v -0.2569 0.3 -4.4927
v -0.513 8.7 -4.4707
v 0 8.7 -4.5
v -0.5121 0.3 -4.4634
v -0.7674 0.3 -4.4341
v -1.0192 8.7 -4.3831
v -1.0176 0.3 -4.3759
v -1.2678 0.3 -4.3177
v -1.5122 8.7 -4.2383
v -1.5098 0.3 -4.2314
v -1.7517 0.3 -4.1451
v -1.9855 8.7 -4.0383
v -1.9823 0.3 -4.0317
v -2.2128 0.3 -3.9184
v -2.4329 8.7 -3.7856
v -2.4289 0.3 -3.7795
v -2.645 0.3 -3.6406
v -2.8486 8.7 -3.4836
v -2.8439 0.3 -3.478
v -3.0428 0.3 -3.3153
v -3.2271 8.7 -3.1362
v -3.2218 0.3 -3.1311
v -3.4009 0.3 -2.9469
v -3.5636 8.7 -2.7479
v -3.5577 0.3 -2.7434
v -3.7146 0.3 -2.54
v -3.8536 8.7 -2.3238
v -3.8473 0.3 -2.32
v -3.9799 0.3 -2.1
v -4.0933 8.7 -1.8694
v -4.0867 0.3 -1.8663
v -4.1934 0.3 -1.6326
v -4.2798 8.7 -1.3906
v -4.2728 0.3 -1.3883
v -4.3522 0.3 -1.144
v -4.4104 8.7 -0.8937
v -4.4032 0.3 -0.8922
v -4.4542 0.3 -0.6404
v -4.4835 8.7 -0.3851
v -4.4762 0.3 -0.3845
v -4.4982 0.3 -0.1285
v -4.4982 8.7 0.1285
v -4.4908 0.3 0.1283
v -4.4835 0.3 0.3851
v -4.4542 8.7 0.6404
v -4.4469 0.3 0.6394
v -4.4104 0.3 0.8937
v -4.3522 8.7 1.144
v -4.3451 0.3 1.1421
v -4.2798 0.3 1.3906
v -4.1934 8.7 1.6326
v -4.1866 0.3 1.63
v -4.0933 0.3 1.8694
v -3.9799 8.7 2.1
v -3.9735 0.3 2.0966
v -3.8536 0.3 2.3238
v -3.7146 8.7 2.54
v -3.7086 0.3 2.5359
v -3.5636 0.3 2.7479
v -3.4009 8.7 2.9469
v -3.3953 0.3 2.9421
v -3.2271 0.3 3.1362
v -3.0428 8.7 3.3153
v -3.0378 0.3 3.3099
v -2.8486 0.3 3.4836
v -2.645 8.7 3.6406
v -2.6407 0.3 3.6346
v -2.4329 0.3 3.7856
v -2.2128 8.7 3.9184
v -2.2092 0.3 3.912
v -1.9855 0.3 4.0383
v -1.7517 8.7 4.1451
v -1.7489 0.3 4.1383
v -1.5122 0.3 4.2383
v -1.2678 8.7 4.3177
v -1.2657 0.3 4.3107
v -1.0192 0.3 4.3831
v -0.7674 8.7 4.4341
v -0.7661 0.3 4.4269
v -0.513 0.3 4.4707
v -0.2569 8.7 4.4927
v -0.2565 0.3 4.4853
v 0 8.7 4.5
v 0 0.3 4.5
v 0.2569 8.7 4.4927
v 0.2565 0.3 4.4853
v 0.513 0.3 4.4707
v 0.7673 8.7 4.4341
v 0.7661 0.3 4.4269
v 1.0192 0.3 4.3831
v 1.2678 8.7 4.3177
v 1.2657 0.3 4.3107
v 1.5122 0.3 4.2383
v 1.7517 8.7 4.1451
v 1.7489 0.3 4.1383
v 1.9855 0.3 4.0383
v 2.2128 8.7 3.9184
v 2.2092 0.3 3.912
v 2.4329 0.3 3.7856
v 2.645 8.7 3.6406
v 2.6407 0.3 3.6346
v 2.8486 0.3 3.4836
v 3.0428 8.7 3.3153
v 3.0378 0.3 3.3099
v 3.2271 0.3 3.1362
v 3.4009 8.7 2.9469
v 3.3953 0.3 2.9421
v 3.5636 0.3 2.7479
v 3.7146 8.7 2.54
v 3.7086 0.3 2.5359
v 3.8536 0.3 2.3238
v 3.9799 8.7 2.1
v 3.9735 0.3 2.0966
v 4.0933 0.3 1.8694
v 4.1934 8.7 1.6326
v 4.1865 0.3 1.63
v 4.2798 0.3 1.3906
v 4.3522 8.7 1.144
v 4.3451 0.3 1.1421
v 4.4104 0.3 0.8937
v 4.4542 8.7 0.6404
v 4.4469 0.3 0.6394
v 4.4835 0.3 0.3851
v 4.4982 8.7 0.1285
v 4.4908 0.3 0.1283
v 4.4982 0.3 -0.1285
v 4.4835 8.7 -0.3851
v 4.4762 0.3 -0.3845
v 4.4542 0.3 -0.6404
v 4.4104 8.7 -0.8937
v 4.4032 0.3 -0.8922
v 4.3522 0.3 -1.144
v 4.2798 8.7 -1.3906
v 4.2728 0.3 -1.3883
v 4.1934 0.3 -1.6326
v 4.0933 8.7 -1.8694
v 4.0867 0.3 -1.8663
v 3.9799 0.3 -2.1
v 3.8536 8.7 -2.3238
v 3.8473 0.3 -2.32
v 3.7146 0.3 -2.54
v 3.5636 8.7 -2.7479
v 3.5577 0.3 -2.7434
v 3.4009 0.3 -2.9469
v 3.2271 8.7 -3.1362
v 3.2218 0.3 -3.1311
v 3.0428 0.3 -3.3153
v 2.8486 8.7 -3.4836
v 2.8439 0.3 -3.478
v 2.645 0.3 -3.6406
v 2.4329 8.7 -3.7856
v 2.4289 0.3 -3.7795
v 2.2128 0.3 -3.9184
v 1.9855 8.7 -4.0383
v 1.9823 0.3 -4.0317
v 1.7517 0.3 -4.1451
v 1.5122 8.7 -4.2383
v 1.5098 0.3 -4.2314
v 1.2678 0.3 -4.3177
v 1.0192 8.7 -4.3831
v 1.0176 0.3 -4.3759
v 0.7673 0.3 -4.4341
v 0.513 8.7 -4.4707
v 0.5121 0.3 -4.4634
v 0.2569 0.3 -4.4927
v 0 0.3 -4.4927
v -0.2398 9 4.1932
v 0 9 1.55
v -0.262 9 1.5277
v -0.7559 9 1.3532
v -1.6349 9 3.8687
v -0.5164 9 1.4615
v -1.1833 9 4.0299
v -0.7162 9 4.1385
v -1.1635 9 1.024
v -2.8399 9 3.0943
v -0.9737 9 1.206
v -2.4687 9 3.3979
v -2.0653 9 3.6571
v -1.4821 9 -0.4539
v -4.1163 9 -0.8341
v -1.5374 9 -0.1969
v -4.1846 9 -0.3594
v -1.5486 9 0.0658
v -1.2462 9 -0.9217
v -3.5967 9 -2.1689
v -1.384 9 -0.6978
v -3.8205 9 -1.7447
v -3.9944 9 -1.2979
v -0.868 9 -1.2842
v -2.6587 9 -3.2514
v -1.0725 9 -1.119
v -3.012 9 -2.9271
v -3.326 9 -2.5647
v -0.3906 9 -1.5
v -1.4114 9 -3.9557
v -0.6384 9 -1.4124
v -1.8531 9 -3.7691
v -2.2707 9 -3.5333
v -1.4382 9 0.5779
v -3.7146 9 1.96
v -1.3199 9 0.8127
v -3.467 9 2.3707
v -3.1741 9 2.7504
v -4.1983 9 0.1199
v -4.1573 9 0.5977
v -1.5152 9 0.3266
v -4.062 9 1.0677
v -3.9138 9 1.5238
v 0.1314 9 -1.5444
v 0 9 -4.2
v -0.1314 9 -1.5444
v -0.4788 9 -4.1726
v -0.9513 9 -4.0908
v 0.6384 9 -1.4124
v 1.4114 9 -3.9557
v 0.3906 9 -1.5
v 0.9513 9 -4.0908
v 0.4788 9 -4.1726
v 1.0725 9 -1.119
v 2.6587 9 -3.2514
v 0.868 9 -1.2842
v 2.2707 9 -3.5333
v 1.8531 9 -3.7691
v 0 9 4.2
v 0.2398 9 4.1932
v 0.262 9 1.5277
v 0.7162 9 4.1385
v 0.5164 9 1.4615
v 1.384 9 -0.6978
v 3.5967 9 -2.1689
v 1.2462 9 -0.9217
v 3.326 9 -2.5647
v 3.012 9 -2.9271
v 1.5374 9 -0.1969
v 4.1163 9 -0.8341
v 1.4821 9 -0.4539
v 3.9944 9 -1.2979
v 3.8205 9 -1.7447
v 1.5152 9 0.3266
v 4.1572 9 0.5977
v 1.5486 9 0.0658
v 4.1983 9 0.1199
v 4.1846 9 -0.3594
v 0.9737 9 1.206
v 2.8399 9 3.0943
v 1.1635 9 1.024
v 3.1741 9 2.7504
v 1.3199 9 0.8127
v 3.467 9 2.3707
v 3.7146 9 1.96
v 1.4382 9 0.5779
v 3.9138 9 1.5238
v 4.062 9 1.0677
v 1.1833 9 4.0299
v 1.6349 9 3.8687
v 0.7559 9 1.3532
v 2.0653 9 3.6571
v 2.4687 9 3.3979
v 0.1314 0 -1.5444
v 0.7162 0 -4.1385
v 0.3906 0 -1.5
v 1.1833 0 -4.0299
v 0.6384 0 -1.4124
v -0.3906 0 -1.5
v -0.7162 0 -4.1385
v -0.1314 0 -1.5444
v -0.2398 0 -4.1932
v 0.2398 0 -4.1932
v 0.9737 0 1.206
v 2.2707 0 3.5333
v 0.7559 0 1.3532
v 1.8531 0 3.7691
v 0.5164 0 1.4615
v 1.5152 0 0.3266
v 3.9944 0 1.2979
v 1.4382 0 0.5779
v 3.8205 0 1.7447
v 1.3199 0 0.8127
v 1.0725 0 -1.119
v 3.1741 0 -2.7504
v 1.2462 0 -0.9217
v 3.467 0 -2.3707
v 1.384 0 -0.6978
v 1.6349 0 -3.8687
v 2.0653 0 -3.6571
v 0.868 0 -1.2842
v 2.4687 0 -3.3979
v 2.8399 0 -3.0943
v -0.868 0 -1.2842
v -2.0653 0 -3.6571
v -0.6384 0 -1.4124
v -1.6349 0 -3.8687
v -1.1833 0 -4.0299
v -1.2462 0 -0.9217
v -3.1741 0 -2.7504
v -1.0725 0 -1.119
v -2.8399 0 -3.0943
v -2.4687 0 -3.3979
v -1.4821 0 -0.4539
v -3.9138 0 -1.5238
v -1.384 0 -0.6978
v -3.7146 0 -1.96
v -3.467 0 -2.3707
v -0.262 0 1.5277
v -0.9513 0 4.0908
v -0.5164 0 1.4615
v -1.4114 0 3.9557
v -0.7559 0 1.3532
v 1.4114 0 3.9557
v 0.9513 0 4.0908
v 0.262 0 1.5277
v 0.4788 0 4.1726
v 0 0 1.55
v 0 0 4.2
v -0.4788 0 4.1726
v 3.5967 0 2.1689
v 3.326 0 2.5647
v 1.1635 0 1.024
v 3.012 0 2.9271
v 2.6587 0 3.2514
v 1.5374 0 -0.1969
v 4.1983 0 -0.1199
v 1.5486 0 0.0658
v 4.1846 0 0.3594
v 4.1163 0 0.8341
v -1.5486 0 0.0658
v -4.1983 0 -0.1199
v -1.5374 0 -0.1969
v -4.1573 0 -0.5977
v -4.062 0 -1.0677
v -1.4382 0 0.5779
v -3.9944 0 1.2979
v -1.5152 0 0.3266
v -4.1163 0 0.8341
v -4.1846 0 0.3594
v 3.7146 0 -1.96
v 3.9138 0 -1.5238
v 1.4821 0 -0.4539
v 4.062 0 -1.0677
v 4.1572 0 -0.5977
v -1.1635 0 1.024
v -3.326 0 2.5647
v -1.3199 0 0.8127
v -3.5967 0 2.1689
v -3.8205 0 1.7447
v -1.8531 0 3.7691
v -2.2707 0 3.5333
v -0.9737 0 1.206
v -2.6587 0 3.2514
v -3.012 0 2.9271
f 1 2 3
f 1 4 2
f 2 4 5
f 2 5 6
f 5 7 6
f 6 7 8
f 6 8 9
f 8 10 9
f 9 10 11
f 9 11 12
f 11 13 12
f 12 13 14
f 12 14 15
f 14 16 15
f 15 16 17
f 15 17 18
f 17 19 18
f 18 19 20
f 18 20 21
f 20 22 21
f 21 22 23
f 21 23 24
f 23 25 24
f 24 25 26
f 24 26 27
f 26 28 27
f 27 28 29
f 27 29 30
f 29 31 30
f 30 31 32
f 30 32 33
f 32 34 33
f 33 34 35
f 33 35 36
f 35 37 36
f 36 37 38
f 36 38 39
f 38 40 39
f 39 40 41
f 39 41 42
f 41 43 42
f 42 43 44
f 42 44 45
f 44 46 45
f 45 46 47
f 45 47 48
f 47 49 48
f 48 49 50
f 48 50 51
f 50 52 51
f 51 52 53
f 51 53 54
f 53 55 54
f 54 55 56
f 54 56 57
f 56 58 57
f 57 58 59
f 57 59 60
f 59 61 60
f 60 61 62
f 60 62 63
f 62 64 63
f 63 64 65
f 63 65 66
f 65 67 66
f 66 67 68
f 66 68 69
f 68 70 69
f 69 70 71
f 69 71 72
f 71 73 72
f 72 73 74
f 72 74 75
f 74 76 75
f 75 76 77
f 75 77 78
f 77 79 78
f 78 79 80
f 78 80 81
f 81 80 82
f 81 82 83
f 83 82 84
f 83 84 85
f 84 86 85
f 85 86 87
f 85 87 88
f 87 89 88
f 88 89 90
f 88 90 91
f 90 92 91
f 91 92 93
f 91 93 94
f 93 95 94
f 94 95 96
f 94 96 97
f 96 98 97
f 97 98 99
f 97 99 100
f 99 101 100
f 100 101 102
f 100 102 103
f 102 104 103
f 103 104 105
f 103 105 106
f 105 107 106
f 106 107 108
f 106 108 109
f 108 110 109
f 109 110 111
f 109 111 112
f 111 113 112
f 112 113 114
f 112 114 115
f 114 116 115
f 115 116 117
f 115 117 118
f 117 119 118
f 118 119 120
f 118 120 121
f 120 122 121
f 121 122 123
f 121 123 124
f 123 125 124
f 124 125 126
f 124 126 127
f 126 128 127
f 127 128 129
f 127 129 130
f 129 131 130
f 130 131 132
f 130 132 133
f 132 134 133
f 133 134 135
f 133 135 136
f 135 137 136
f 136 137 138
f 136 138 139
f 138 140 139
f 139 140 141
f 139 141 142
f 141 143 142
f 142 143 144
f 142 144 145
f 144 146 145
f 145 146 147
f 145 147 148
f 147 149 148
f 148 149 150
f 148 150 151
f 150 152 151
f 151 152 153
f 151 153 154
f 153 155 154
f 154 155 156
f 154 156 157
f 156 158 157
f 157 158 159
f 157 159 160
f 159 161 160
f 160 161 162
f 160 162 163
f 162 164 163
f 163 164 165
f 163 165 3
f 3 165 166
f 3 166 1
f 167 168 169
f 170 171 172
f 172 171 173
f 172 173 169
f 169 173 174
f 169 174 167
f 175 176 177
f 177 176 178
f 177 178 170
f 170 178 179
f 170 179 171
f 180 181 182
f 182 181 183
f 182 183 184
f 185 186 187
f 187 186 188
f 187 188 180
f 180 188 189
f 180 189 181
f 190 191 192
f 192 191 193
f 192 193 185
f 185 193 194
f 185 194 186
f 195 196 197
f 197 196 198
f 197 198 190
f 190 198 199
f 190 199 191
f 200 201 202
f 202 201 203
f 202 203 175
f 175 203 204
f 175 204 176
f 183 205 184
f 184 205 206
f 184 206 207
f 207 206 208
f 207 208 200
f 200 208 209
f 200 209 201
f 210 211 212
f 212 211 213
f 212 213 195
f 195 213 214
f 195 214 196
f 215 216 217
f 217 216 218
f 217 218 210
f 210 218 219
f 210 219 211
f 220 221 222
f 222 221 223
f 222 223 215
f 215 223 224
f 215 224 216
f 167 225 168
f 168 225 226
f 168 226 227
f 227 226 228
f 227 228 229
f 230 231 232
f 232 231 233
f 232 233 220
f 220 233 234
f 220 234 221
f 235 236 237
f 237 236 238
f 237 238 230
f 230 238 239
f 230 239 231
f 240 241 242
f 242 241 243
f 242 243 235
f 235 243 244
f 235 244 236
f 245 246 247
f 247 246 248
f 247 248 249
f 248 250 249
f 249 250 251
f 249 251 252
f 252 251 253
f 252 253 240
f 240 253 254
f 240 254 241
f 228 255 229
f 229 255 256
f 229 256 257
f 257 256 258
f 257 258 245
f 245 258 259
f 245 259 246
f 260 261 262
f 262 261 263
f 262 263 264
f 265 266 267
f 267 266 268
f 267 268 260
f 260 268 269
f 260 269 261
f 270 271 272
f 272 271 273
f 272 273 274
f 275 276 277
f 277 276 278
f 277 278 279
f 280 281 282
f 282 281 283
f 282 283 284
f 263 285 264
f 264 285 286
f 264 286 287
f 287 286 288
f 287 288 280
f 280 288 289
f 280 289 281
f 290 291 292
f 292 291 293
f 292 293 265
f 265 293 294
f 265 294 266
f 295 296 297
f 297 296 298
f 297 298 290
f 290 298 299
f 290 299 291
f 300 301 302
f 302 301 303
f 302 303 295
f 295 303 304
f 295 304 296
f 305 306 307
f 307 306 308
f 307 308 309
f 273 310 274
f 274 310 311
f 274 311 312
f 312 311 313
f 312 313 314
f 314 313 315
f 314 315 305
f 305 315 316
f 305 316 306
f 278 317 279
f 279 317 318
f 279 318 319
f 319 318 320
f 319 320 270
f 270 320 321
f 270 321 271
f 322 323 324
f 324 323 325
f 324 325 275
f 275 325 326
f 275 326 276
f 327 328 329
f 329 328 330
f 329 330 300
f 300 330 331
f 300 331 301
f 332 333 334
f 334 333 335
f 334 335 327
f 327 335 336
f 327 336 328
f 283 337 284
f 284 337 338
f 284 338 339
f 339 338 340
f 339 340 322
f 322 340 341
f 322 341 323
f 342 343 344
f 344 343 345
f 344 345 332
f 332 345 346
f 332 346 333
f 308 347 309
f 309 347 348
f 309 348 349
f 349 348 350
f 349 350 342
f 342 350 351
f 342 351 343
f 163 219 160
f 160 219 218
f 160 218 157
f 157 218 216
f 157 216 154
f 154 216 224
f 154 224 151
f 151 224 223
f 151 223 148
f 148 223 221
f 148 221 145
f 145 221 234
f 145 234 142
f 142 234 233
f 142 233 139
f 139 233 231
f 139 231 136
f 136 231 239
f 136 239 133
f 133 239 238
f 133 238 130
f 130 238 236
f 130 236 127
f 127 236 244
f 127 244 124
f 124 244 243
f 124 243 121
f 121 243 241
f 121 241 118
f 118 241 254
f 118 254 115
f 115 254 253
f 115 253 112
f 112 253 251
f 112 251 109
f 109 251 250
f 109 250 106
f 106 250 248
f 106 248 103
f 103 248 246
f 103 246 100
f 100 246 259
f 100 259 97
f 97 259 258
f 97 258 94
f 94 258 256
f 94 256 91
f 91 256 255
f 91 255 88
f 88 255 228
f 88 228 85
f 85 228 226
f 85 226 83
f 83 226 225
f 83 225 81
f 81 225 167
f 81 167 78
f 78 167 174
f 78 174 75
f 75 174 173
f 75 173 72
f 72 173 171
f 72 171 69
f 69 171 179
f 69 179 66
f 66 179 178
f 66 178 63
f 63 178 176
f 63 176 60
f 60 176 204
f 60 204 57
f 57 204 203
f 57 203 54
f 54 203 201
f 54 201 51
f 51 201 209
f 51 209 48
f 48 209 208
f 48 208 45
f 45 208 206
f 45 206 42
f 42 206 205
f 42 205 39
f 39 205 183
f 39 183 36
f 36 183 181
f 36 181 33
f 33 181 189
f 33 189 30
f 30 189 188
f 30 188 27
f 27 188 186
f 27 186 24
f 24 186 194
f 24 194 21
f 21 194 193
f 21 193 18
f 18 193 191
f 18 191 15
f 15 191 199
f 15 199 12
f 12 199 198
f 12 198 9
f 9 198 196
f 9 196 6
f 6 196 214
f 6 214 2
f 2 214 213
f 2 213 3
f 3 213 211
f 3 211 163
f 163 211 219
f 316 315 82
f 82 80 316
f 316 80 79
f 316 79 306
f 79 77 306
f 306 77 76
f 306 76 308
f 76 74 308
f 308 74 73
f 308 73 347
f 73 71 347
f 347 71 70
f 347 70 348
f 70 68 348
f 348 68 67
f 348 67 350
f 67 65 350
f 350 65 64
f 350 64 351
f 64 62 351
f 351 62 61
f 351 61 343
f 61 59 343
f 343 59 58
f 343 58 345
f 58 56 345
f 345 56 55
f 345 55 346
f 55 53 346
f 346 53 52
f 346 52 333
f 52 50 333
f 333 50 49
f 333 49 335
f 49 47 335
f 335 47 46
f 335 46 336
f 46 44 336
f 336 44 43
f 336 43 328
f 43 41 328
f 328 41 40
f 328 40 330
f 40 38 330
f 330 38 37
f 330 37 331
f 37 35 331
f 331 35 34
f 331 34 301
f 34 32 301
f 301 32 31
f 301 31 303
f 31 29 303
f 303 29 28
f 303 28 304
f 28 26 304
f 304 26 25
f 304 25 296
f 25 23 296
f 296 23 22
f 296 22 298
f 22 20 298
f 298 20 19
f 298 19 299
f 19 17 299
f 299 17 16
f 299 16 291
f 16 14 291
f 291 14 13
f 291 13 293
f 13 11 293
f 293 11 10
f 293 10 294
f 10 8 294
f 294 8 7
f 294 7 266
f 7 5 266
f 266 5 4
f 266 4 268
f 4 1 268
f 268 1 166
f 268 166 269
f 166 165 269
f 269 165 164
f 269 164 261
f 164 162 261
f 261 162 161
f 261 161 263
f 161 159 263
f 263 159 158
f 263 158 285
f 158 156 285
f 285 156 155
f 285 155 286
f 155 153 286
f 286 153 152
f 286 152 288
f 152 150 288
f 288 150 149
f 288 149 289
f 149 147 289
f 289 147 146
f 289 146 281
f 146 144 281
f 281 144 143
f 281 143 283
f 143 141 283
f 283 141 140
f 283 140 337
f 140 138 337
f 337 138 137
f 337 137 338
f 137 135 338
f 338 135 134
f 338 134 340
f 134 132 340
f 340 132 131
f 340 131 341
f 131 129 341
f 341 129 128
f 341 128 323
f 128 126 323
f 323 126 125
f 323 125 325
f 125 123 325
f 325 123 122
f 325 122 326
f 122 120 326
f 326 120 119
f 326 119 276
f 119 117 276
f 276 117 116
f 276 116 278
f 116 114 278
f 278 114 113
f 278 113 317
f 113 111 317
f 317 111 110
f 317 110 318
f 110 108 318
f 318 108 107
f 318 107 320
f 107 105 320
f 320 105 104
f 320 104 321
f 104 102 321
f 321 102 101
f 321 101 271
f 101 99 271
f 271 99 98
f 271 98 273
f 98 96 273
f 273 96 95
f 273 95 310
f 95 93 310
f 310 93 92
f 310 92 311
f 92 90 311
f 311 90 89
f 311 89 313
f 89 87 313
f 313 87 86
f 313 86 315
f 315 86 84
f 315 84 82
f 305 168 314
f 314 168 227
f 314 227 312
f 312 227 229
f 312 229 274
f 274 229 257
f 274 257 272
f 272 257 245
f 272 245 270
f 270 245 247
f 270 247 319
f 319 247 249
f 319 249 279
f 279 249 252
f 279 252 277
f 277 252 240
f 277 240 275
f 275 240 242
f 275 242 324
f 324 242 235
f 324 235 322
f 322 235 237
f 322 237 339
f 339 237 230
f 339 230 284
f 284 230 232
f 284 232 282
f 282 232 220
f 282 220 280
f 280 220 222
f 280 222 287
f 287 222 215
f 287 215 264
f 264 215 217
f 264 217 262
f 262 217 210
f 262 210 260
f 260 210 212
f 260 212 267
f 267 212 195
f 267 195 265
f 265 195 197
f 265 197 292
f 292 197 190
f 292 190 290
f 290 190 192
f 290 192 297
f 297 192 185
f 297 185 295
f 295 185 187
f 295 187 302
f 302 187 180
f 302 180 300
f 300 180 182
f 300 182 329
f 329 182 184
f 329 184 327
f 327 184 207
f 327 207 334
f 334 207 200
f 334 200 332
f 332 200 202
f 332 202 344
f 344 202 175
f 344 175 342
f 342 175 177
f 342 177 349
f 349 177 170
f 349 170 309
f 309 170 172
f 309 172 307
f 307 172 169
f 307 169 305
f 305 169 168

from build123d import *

# Parameters (mm, degrees)
CROQUIS1_R              = 4.5
SALIENTE_EXTRUIR1_DEPTH = 9
CHAFL_N1_SIZE           = 0.3
CHAFL_N2_SIZE           = 0.3
CROQUIS2_R              = 1.55
CORTAR_EXTRUIR1_DEPTH   = 9


with BuildPart() as part:
    # Croquis1 → Saliente-Extruir1 (new body)
    with BuildSketch(Plane(origin=(0, 0, 0), x_dir=(1, 0, 0), z_dir=(0, 1, 0))):
        with Locations(Location((0, 0, 0), (0, 0, 270))):
            Circle(CROQUIS1_R)
    extrude(amount=SALIENTE_EXTRUIR1_DEPTH)

    # Chaflán1
    chafl_n1_edges = [part.edges().sort_by_distance(p)[0] for p in [
        (0, 9, -4.5),
    ]]
    chamfer(chafl_n1_edges, length=CHAFL_N1_SIZE)

    # Chaflán2
    chafl_n2_edges = [part.edges().sort_by_distance(p)[0] for p in [
        (0, 0, -4.5),
    ]]
    chamfer(chafl_n2_edges, length=CHAFL_N2_SIZE)

    # Croquis2 → Cortar-Extruir1 (cut)
    with BuildSketch(Plane(origin=(0, 9, 0), x_dir=(1, 0, 0), z_dir=(0, 1, 0))):
        with Locations(Location((0, 0, 0), (0, 0, 270))):
            Circle(CROQUIS2_R)
    extrude(amount=-CORTAR_EXTRUIR1_DEPTH, mode=Mode.SUBTRACT)


solid = part.part
